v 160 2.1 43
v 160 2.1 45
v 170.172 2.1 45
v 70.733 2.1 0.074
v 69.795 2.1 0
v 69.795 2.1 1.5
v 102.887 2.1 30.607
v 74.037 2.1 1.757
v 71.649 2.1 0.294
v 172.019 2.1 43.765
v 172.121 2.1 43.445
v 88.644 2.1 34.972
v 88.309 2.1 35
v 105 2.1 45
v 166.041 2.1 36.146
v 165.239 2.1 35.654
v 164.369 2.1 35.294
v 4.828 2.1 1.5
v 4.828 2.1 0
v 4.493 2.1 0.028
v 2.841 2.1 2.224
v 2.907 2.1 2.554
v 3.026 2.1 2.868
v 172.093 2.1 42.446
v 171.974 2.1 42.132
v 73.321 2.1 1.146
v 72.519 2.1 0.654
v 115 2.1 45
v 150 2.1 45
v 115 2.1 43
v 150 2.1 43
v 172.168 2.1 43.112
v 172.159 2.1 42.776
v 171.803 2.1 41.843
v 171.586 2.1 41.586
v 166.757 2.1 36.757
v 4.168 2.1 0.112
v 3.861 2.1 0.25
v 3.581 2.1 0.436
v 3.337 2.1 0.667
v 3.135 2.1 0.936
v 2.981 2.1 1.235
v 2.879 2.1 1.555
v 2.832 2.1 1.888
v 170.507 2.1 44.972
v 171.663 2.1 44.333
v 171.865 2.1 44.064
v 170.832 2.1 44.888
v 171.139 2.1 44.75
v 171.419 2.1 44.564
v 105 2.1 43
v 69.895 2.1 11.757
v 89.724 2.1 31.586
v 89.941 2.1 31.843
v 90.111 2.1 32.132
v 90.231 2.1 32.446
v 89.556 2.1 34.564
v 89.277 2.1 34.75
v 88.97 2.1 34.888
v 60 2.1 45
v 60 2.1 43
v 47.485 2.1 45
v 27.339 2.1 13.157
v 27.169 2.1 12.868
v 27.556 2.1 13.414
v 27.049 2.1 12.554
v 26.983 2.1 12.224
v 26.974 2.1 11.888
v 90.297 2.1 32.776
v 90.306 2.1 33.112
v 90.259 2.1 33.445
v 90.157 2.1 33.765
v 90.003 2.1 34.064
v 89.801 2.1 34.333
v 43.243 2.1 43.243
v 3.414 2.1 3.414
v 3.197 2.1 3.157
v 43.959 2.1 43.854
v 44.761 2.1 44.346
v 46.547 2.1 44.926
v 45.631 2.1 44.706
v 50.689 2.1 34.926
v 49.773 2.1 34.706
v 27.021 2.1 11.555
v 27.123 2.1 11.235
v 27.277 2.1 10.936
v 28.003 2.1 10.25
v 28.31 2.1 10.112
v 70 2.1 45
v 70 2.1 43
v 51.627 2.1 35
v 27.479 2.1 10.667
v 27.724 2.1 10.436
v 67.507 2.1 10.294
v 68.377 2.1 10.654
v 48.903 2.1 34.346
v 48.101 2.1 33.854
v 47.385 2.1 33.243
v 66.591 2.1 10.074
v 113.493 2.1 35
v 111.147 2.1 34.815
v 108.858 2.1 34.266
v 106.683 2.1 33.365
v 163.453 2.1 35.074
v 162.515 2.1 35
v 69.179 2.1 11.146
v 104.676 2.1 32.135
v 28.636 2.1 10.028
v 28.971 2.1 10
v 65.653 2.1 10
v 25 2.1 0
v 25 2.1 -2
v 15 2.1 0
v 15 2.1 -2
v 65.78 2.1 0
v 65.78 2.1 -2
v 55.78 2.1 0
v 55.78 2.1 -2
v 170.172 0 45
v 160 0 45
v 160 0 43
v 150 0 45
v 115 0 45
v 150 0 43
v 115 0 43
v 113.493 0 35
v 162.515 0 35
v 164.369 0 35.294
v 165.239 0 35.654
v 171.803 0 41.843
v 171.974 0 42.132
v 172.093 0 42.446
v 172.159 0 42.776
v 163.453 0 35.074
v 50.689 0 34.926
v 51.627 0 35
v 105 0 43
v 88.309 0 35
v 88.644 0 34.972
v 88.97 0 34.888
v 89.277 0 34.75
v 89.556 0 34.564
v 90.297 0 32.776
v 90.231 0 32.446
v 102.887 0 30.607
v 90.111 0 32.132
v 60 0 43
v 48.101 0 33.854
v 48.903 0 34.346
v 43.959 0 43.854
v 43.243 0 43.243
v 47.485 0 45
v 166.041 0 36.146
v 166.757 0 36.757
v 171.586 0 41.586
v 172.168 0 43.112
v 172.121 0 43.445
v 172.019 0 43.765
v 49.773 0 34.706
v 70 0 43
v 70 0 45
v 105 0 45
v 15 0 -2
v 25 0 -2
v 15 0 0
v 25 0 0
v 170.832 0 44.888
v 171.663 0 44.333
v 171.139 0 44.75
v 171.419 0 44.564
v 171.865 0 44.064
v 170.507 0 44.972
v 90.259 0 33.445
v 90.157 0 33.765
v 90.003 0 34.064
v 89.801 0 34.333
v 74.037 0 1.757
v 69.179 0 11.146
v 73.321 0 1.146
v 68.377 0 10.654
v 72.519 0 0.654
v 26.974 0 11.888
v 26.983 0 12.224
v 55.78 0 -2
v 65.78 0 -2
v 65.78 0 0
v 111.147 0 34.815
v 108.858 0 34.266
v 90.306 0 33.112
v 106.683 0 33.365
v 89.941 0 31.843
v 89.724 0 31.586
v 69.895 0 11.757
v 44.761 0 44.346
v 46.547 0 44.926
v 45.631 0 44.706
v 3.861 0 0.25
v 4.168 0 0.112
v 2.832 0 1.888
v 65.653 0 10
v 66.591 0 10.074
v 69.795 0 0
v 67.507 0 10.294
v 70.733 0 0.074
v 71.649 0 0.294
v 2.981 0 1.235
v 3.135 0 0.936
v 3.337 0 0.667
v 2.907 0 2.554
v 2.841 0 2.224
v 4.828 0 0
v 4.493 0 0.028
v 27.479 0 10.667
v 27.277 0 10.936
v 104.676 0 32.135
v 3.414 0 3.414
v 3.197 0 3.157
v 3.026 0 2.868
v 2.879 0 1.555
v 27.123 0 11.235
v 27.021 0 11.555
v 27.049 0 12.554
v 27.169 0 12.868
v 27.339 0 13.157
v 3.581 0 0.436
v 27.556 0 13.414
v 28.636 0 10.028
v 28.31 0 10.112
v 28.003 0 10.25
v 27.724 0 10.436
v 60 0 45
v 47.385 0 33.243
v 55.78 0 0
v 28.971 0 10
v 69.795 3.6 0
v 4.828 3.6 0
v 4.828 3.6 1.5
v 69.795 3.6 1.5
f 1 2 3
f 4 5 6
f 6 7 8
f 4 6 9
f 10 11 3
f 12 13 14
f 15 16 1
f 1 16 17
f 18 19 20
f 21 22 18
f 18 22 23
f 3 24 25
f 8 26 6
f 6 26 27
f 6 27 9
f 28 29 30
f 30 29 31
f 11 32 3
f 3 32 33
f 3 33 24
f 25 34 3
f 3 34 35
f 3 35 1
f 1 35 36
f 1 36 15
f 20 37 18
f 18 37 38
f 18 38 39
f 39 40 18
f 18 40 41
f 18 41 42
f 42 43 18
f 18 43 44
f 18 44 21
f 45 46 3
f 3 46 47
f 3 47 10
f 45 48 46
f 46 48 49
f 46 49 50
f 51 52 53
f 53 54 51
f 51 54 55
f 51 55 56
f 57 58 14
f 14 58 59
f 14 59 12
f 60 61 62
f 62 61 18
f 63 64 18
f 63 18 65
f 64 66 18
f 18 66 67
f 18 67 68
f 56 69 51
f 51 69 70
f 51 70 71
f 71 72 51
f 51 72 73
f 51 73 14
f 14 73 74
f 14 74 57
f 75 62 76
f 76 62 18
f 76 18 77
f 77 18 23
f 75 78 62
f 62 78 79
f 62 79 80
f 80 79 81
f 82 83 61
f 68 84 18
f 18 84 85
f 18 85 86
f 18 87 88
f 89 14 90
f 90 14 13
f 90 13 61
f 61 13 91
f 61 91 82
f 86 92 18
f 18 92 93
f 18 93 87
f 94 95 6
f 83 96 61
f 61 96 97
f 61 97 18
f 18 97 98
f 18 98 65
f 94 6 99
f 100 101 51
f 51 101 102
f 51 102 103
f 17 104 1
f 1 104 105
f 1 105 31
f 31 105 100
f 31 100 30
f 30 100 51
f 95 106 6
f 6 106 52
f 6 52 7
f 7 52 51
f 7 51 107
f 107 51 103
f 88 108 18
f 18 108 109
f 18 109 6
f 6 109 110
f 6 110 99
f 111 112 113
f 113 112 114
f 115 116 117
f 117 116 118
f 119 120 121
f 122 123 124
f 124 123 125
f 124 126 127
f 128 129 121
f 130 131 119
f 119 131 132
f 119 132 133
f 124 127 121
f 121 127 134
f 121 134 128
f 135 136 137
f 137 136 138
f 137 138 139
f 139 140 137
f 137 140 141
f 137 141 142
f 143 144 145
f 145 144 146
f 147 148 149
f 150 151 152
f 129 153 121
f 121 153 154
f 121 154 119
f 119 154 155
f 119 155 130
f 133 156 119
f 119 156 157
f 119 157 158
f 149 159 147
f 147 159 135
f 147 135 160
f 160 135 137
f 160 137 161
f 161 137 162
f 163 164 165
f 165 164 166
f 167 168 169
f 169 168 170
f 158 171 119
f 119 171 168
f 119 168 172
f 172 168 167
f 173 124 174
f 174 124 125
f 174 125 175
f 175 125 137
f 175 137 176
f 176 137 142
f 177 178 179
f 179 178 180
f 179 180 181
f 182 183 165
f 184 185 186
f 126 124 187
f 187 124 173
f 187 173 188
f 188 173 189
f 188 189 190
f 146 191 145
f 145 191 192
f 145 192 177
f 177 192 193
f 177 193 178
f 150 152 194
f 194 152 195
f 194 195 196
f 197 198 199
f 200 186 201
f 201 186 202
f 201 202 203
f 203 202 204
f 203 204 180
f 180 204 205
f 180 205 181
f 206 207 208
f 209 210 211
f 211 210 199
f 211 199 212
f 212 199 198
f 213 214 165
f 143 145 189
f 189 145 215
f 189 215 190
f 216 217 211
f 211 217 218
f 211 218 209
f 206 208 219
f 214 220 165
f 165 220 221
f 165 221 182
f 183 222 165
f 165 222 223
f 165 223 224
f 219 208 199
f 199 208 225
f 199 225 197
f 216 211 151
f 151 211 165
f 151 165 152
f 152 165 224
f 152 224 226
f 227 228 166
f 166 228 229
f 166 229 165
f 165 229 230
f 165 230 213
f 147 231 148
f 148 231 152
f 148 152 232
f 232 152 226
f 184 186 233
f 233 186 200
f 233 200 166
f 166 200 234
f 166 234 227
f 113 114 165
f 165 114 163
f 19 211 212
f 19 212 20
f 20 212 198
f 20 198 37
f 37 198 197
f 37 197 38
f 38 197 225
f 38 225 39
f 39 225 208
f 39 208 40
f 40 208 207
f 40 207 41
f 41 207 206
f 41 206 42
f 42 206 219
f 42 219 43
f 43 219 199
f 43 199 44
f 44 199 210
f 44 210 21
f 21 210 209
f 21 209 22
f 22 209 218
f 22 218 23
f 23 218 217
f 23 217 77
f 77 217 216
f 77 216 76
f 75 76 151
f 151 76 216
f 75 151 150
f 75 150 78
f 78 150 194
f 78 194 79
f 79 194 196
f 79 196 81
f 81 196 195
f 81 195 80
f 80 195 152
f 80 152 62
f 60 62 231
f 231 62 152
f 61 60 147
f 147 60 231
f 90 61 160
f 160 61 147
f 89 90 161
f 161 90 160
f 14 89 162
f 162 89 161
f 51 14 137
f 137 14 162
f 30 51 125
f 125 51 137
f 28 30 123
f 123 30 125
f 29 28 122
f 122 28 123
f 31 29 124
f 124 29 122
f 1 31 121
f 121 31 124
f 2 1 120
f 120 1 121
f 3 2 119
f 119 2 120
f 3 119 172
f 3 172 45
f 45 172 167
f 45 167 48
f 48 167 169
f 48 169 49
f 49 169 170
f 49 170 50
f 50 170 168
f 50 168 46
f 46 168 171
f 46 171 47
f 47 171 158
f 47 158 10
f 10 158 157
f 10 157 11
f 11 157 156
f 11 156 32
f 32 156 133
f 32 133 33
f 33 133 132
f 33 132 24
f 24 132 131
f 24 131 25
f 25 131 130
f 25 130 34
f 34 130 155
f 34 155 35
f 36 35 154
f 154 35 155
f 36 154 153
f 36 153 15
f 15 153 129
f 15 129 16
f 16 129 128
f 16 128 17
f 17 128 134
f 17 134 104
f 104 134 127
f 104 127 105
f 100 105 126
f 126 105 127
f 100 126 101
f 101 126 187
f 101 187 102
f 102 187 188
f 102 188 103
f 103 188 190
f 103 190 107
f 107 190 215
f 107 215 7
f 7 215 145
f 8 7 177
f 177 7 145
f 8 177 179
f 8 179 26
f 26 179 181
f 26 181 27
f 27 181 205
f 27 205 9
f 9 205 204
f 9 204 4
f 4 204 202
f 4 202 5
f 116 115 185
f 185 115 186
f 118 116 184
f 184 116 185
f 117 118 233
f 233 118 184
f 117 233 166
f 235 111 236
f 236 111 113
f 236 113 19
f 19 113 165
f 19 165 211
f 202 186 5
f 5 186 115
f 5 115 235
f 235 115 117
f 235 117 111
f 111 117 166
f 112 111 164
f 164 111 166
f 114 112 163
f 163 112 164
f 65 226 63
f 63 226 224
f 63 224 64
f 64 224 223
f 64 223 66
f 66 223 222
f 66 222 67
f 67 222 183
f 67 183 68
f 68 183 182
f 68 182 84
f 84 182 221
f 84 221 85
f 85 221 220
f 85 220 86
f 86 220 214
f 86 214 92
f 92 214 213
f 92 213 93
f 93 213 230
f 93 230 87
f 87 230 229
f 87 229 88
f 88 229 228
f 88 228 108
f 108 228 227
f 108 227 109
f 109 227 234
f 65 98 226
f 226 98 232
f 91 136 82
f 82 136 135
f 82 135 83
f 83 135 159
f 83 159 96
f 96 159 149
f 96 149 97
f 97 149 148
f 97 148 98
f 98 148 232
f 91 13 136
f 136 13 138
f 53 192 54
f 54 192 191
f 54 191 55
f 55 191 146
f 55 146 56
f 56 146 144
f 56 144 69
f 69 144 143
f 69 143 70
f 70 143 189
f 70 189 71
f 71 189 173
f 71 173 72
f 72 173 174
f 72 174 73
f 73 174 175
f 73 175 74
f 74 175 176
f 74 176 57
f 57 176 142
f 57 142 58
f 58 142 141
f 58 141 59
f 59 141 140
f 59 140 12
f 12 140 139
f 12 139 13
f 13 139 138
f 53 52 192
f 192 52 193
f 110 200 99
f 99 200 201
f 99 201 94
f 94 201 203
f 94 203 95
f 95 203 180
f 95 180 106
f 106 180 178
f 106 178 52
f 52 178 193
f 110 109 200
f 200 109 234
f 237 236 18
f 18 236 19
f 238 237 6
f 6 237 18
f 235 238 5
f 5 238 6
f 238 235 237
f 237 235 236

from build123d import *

# Parameters (mm, degrees)
BOSS_EXTRUDE1_DEPTH = 2.1
SKETCH2_W           = 64.966291501
SKETCH2_H           = 1.5
BOSS_EXTRUDE2_DEPTH = 1.5


with BuildPart() as part:
    # Sketch1 → Boss-Extrude1 (new body)
    with BuildSketch(Plane(origin=(0, 0, 0), x_dir=(1, 0, 0), z_dir=(0, 1, 0))):
        with BuildLine():
            Line((4.828427125, 0), (15, 0))
            Line((15, 0), (15, 2))
            Line((15, 2), (25, 2))
            Line((25, 2), (25, 0))
            Line((25, 0), (55.78, 0))
            Line((55.78, 0), (55.78, 2))
            Line((55.78, 2), (65.78, 2))
            Line((65.78, 2), (65.78, 0))
            Line((65.78, 0), (69.794718626, 0))
            ThreePointArc((69.794718626, 0), (72.09081922, -0.456722805), (74.037359313, -1.757359313))
            Line((74.037359313, -1.757359313), (102.886601718, -30.606601718))
            ThreePointArc((102.886601718, -30.606601718), (107.75295195, -33.858192988), (113.493203436, -35))
            Line((113.493203436, -35), (162.514718626, -35))
            ThreePointArc((162.514718626, -35), (164.81081922, -35.456722805), (166.757359313, -36.757359313))
            Line((166.757359313, -36.757359313), (171.585786438, -41.585786438))
            ThreePointArc((171.585786438, -41.585786438), (172.01933194, -43.765366865), (170.171572875, -45))
            Line((170.171572875, -45), (160, -45))
            Line((160, -45), (160, -43))
            Line((160, -43), (150, -43))
            Line((150, -43), (150, -45))
            Line((150, -45), (115, -45))
            Line((115, -45), (115, -43))
            Line((115, -43), (105, -43))
            Line((105, -43), (105, -45))
            Line((105, -45), (70, -45))
            Line((70, -45), (70, -43))
            Line((70, -43), (60, -43))
            Line((60, -43), (60, -45))
            Line((60, -45), (47.485281374, -45))
            ThreePointArc((47.485281374, -45), (45.18918078, -44.543277195), (43.242640687, -43.242640687))
            Line((43.242640687, -43.242640687), (3.414213562, -3.414213562))
            ThreePointArc((3.414213562, -3.414213562), (2.98066806, -1.234633135), (4.828427125, 0))
        make_face()
        with BuildLine():
            Line((28.970562748, -10), (65.652583002, -10))
            ThreePointArc((65.652583002, -10), (67.948683596, -10.456722805), (69.895223689, -11.757359313))
            Line((69.895223689, -11.757359313), (89.723650814, -31.585786438))
            ThreePointArc((89.723650814, -31.585786438), (90.157196317, -33.765366865), (88.309437252, -35))
            Line((88.309437252, -35), (51.627416998, -35))
            ThreePointArc((51.627416998, -35), (49.331316404, -34.543277195), (47.384776311, -33.242640687))
            Line((47.384776311, -33.242640687), (27.556349186, -13.414213562))
            ThreePointArc((27.556349186, -13.414213562), (27.122803683, -11.234633135), (28.970562748, -10))
        make_face(mode=Mode.SUBTRACT)
    extrude(amount=BOSS_EXTRUDE1_DEPTH)

    # Sketch2 → Boss-Extrude2 (add)
    with BuildSketch(Plane(origin=(0, 2.1, 0), x_dir=(1, 0, 0), z_dir=(0, 1, 0))):
        with Locations((37.311572876, -0.75)):
            Rectangle(SKETCH2_W, SKETCH2_H)
    extrude(amount=BOSS_EXTRUDE2_DEPTH)


solid = part.part
